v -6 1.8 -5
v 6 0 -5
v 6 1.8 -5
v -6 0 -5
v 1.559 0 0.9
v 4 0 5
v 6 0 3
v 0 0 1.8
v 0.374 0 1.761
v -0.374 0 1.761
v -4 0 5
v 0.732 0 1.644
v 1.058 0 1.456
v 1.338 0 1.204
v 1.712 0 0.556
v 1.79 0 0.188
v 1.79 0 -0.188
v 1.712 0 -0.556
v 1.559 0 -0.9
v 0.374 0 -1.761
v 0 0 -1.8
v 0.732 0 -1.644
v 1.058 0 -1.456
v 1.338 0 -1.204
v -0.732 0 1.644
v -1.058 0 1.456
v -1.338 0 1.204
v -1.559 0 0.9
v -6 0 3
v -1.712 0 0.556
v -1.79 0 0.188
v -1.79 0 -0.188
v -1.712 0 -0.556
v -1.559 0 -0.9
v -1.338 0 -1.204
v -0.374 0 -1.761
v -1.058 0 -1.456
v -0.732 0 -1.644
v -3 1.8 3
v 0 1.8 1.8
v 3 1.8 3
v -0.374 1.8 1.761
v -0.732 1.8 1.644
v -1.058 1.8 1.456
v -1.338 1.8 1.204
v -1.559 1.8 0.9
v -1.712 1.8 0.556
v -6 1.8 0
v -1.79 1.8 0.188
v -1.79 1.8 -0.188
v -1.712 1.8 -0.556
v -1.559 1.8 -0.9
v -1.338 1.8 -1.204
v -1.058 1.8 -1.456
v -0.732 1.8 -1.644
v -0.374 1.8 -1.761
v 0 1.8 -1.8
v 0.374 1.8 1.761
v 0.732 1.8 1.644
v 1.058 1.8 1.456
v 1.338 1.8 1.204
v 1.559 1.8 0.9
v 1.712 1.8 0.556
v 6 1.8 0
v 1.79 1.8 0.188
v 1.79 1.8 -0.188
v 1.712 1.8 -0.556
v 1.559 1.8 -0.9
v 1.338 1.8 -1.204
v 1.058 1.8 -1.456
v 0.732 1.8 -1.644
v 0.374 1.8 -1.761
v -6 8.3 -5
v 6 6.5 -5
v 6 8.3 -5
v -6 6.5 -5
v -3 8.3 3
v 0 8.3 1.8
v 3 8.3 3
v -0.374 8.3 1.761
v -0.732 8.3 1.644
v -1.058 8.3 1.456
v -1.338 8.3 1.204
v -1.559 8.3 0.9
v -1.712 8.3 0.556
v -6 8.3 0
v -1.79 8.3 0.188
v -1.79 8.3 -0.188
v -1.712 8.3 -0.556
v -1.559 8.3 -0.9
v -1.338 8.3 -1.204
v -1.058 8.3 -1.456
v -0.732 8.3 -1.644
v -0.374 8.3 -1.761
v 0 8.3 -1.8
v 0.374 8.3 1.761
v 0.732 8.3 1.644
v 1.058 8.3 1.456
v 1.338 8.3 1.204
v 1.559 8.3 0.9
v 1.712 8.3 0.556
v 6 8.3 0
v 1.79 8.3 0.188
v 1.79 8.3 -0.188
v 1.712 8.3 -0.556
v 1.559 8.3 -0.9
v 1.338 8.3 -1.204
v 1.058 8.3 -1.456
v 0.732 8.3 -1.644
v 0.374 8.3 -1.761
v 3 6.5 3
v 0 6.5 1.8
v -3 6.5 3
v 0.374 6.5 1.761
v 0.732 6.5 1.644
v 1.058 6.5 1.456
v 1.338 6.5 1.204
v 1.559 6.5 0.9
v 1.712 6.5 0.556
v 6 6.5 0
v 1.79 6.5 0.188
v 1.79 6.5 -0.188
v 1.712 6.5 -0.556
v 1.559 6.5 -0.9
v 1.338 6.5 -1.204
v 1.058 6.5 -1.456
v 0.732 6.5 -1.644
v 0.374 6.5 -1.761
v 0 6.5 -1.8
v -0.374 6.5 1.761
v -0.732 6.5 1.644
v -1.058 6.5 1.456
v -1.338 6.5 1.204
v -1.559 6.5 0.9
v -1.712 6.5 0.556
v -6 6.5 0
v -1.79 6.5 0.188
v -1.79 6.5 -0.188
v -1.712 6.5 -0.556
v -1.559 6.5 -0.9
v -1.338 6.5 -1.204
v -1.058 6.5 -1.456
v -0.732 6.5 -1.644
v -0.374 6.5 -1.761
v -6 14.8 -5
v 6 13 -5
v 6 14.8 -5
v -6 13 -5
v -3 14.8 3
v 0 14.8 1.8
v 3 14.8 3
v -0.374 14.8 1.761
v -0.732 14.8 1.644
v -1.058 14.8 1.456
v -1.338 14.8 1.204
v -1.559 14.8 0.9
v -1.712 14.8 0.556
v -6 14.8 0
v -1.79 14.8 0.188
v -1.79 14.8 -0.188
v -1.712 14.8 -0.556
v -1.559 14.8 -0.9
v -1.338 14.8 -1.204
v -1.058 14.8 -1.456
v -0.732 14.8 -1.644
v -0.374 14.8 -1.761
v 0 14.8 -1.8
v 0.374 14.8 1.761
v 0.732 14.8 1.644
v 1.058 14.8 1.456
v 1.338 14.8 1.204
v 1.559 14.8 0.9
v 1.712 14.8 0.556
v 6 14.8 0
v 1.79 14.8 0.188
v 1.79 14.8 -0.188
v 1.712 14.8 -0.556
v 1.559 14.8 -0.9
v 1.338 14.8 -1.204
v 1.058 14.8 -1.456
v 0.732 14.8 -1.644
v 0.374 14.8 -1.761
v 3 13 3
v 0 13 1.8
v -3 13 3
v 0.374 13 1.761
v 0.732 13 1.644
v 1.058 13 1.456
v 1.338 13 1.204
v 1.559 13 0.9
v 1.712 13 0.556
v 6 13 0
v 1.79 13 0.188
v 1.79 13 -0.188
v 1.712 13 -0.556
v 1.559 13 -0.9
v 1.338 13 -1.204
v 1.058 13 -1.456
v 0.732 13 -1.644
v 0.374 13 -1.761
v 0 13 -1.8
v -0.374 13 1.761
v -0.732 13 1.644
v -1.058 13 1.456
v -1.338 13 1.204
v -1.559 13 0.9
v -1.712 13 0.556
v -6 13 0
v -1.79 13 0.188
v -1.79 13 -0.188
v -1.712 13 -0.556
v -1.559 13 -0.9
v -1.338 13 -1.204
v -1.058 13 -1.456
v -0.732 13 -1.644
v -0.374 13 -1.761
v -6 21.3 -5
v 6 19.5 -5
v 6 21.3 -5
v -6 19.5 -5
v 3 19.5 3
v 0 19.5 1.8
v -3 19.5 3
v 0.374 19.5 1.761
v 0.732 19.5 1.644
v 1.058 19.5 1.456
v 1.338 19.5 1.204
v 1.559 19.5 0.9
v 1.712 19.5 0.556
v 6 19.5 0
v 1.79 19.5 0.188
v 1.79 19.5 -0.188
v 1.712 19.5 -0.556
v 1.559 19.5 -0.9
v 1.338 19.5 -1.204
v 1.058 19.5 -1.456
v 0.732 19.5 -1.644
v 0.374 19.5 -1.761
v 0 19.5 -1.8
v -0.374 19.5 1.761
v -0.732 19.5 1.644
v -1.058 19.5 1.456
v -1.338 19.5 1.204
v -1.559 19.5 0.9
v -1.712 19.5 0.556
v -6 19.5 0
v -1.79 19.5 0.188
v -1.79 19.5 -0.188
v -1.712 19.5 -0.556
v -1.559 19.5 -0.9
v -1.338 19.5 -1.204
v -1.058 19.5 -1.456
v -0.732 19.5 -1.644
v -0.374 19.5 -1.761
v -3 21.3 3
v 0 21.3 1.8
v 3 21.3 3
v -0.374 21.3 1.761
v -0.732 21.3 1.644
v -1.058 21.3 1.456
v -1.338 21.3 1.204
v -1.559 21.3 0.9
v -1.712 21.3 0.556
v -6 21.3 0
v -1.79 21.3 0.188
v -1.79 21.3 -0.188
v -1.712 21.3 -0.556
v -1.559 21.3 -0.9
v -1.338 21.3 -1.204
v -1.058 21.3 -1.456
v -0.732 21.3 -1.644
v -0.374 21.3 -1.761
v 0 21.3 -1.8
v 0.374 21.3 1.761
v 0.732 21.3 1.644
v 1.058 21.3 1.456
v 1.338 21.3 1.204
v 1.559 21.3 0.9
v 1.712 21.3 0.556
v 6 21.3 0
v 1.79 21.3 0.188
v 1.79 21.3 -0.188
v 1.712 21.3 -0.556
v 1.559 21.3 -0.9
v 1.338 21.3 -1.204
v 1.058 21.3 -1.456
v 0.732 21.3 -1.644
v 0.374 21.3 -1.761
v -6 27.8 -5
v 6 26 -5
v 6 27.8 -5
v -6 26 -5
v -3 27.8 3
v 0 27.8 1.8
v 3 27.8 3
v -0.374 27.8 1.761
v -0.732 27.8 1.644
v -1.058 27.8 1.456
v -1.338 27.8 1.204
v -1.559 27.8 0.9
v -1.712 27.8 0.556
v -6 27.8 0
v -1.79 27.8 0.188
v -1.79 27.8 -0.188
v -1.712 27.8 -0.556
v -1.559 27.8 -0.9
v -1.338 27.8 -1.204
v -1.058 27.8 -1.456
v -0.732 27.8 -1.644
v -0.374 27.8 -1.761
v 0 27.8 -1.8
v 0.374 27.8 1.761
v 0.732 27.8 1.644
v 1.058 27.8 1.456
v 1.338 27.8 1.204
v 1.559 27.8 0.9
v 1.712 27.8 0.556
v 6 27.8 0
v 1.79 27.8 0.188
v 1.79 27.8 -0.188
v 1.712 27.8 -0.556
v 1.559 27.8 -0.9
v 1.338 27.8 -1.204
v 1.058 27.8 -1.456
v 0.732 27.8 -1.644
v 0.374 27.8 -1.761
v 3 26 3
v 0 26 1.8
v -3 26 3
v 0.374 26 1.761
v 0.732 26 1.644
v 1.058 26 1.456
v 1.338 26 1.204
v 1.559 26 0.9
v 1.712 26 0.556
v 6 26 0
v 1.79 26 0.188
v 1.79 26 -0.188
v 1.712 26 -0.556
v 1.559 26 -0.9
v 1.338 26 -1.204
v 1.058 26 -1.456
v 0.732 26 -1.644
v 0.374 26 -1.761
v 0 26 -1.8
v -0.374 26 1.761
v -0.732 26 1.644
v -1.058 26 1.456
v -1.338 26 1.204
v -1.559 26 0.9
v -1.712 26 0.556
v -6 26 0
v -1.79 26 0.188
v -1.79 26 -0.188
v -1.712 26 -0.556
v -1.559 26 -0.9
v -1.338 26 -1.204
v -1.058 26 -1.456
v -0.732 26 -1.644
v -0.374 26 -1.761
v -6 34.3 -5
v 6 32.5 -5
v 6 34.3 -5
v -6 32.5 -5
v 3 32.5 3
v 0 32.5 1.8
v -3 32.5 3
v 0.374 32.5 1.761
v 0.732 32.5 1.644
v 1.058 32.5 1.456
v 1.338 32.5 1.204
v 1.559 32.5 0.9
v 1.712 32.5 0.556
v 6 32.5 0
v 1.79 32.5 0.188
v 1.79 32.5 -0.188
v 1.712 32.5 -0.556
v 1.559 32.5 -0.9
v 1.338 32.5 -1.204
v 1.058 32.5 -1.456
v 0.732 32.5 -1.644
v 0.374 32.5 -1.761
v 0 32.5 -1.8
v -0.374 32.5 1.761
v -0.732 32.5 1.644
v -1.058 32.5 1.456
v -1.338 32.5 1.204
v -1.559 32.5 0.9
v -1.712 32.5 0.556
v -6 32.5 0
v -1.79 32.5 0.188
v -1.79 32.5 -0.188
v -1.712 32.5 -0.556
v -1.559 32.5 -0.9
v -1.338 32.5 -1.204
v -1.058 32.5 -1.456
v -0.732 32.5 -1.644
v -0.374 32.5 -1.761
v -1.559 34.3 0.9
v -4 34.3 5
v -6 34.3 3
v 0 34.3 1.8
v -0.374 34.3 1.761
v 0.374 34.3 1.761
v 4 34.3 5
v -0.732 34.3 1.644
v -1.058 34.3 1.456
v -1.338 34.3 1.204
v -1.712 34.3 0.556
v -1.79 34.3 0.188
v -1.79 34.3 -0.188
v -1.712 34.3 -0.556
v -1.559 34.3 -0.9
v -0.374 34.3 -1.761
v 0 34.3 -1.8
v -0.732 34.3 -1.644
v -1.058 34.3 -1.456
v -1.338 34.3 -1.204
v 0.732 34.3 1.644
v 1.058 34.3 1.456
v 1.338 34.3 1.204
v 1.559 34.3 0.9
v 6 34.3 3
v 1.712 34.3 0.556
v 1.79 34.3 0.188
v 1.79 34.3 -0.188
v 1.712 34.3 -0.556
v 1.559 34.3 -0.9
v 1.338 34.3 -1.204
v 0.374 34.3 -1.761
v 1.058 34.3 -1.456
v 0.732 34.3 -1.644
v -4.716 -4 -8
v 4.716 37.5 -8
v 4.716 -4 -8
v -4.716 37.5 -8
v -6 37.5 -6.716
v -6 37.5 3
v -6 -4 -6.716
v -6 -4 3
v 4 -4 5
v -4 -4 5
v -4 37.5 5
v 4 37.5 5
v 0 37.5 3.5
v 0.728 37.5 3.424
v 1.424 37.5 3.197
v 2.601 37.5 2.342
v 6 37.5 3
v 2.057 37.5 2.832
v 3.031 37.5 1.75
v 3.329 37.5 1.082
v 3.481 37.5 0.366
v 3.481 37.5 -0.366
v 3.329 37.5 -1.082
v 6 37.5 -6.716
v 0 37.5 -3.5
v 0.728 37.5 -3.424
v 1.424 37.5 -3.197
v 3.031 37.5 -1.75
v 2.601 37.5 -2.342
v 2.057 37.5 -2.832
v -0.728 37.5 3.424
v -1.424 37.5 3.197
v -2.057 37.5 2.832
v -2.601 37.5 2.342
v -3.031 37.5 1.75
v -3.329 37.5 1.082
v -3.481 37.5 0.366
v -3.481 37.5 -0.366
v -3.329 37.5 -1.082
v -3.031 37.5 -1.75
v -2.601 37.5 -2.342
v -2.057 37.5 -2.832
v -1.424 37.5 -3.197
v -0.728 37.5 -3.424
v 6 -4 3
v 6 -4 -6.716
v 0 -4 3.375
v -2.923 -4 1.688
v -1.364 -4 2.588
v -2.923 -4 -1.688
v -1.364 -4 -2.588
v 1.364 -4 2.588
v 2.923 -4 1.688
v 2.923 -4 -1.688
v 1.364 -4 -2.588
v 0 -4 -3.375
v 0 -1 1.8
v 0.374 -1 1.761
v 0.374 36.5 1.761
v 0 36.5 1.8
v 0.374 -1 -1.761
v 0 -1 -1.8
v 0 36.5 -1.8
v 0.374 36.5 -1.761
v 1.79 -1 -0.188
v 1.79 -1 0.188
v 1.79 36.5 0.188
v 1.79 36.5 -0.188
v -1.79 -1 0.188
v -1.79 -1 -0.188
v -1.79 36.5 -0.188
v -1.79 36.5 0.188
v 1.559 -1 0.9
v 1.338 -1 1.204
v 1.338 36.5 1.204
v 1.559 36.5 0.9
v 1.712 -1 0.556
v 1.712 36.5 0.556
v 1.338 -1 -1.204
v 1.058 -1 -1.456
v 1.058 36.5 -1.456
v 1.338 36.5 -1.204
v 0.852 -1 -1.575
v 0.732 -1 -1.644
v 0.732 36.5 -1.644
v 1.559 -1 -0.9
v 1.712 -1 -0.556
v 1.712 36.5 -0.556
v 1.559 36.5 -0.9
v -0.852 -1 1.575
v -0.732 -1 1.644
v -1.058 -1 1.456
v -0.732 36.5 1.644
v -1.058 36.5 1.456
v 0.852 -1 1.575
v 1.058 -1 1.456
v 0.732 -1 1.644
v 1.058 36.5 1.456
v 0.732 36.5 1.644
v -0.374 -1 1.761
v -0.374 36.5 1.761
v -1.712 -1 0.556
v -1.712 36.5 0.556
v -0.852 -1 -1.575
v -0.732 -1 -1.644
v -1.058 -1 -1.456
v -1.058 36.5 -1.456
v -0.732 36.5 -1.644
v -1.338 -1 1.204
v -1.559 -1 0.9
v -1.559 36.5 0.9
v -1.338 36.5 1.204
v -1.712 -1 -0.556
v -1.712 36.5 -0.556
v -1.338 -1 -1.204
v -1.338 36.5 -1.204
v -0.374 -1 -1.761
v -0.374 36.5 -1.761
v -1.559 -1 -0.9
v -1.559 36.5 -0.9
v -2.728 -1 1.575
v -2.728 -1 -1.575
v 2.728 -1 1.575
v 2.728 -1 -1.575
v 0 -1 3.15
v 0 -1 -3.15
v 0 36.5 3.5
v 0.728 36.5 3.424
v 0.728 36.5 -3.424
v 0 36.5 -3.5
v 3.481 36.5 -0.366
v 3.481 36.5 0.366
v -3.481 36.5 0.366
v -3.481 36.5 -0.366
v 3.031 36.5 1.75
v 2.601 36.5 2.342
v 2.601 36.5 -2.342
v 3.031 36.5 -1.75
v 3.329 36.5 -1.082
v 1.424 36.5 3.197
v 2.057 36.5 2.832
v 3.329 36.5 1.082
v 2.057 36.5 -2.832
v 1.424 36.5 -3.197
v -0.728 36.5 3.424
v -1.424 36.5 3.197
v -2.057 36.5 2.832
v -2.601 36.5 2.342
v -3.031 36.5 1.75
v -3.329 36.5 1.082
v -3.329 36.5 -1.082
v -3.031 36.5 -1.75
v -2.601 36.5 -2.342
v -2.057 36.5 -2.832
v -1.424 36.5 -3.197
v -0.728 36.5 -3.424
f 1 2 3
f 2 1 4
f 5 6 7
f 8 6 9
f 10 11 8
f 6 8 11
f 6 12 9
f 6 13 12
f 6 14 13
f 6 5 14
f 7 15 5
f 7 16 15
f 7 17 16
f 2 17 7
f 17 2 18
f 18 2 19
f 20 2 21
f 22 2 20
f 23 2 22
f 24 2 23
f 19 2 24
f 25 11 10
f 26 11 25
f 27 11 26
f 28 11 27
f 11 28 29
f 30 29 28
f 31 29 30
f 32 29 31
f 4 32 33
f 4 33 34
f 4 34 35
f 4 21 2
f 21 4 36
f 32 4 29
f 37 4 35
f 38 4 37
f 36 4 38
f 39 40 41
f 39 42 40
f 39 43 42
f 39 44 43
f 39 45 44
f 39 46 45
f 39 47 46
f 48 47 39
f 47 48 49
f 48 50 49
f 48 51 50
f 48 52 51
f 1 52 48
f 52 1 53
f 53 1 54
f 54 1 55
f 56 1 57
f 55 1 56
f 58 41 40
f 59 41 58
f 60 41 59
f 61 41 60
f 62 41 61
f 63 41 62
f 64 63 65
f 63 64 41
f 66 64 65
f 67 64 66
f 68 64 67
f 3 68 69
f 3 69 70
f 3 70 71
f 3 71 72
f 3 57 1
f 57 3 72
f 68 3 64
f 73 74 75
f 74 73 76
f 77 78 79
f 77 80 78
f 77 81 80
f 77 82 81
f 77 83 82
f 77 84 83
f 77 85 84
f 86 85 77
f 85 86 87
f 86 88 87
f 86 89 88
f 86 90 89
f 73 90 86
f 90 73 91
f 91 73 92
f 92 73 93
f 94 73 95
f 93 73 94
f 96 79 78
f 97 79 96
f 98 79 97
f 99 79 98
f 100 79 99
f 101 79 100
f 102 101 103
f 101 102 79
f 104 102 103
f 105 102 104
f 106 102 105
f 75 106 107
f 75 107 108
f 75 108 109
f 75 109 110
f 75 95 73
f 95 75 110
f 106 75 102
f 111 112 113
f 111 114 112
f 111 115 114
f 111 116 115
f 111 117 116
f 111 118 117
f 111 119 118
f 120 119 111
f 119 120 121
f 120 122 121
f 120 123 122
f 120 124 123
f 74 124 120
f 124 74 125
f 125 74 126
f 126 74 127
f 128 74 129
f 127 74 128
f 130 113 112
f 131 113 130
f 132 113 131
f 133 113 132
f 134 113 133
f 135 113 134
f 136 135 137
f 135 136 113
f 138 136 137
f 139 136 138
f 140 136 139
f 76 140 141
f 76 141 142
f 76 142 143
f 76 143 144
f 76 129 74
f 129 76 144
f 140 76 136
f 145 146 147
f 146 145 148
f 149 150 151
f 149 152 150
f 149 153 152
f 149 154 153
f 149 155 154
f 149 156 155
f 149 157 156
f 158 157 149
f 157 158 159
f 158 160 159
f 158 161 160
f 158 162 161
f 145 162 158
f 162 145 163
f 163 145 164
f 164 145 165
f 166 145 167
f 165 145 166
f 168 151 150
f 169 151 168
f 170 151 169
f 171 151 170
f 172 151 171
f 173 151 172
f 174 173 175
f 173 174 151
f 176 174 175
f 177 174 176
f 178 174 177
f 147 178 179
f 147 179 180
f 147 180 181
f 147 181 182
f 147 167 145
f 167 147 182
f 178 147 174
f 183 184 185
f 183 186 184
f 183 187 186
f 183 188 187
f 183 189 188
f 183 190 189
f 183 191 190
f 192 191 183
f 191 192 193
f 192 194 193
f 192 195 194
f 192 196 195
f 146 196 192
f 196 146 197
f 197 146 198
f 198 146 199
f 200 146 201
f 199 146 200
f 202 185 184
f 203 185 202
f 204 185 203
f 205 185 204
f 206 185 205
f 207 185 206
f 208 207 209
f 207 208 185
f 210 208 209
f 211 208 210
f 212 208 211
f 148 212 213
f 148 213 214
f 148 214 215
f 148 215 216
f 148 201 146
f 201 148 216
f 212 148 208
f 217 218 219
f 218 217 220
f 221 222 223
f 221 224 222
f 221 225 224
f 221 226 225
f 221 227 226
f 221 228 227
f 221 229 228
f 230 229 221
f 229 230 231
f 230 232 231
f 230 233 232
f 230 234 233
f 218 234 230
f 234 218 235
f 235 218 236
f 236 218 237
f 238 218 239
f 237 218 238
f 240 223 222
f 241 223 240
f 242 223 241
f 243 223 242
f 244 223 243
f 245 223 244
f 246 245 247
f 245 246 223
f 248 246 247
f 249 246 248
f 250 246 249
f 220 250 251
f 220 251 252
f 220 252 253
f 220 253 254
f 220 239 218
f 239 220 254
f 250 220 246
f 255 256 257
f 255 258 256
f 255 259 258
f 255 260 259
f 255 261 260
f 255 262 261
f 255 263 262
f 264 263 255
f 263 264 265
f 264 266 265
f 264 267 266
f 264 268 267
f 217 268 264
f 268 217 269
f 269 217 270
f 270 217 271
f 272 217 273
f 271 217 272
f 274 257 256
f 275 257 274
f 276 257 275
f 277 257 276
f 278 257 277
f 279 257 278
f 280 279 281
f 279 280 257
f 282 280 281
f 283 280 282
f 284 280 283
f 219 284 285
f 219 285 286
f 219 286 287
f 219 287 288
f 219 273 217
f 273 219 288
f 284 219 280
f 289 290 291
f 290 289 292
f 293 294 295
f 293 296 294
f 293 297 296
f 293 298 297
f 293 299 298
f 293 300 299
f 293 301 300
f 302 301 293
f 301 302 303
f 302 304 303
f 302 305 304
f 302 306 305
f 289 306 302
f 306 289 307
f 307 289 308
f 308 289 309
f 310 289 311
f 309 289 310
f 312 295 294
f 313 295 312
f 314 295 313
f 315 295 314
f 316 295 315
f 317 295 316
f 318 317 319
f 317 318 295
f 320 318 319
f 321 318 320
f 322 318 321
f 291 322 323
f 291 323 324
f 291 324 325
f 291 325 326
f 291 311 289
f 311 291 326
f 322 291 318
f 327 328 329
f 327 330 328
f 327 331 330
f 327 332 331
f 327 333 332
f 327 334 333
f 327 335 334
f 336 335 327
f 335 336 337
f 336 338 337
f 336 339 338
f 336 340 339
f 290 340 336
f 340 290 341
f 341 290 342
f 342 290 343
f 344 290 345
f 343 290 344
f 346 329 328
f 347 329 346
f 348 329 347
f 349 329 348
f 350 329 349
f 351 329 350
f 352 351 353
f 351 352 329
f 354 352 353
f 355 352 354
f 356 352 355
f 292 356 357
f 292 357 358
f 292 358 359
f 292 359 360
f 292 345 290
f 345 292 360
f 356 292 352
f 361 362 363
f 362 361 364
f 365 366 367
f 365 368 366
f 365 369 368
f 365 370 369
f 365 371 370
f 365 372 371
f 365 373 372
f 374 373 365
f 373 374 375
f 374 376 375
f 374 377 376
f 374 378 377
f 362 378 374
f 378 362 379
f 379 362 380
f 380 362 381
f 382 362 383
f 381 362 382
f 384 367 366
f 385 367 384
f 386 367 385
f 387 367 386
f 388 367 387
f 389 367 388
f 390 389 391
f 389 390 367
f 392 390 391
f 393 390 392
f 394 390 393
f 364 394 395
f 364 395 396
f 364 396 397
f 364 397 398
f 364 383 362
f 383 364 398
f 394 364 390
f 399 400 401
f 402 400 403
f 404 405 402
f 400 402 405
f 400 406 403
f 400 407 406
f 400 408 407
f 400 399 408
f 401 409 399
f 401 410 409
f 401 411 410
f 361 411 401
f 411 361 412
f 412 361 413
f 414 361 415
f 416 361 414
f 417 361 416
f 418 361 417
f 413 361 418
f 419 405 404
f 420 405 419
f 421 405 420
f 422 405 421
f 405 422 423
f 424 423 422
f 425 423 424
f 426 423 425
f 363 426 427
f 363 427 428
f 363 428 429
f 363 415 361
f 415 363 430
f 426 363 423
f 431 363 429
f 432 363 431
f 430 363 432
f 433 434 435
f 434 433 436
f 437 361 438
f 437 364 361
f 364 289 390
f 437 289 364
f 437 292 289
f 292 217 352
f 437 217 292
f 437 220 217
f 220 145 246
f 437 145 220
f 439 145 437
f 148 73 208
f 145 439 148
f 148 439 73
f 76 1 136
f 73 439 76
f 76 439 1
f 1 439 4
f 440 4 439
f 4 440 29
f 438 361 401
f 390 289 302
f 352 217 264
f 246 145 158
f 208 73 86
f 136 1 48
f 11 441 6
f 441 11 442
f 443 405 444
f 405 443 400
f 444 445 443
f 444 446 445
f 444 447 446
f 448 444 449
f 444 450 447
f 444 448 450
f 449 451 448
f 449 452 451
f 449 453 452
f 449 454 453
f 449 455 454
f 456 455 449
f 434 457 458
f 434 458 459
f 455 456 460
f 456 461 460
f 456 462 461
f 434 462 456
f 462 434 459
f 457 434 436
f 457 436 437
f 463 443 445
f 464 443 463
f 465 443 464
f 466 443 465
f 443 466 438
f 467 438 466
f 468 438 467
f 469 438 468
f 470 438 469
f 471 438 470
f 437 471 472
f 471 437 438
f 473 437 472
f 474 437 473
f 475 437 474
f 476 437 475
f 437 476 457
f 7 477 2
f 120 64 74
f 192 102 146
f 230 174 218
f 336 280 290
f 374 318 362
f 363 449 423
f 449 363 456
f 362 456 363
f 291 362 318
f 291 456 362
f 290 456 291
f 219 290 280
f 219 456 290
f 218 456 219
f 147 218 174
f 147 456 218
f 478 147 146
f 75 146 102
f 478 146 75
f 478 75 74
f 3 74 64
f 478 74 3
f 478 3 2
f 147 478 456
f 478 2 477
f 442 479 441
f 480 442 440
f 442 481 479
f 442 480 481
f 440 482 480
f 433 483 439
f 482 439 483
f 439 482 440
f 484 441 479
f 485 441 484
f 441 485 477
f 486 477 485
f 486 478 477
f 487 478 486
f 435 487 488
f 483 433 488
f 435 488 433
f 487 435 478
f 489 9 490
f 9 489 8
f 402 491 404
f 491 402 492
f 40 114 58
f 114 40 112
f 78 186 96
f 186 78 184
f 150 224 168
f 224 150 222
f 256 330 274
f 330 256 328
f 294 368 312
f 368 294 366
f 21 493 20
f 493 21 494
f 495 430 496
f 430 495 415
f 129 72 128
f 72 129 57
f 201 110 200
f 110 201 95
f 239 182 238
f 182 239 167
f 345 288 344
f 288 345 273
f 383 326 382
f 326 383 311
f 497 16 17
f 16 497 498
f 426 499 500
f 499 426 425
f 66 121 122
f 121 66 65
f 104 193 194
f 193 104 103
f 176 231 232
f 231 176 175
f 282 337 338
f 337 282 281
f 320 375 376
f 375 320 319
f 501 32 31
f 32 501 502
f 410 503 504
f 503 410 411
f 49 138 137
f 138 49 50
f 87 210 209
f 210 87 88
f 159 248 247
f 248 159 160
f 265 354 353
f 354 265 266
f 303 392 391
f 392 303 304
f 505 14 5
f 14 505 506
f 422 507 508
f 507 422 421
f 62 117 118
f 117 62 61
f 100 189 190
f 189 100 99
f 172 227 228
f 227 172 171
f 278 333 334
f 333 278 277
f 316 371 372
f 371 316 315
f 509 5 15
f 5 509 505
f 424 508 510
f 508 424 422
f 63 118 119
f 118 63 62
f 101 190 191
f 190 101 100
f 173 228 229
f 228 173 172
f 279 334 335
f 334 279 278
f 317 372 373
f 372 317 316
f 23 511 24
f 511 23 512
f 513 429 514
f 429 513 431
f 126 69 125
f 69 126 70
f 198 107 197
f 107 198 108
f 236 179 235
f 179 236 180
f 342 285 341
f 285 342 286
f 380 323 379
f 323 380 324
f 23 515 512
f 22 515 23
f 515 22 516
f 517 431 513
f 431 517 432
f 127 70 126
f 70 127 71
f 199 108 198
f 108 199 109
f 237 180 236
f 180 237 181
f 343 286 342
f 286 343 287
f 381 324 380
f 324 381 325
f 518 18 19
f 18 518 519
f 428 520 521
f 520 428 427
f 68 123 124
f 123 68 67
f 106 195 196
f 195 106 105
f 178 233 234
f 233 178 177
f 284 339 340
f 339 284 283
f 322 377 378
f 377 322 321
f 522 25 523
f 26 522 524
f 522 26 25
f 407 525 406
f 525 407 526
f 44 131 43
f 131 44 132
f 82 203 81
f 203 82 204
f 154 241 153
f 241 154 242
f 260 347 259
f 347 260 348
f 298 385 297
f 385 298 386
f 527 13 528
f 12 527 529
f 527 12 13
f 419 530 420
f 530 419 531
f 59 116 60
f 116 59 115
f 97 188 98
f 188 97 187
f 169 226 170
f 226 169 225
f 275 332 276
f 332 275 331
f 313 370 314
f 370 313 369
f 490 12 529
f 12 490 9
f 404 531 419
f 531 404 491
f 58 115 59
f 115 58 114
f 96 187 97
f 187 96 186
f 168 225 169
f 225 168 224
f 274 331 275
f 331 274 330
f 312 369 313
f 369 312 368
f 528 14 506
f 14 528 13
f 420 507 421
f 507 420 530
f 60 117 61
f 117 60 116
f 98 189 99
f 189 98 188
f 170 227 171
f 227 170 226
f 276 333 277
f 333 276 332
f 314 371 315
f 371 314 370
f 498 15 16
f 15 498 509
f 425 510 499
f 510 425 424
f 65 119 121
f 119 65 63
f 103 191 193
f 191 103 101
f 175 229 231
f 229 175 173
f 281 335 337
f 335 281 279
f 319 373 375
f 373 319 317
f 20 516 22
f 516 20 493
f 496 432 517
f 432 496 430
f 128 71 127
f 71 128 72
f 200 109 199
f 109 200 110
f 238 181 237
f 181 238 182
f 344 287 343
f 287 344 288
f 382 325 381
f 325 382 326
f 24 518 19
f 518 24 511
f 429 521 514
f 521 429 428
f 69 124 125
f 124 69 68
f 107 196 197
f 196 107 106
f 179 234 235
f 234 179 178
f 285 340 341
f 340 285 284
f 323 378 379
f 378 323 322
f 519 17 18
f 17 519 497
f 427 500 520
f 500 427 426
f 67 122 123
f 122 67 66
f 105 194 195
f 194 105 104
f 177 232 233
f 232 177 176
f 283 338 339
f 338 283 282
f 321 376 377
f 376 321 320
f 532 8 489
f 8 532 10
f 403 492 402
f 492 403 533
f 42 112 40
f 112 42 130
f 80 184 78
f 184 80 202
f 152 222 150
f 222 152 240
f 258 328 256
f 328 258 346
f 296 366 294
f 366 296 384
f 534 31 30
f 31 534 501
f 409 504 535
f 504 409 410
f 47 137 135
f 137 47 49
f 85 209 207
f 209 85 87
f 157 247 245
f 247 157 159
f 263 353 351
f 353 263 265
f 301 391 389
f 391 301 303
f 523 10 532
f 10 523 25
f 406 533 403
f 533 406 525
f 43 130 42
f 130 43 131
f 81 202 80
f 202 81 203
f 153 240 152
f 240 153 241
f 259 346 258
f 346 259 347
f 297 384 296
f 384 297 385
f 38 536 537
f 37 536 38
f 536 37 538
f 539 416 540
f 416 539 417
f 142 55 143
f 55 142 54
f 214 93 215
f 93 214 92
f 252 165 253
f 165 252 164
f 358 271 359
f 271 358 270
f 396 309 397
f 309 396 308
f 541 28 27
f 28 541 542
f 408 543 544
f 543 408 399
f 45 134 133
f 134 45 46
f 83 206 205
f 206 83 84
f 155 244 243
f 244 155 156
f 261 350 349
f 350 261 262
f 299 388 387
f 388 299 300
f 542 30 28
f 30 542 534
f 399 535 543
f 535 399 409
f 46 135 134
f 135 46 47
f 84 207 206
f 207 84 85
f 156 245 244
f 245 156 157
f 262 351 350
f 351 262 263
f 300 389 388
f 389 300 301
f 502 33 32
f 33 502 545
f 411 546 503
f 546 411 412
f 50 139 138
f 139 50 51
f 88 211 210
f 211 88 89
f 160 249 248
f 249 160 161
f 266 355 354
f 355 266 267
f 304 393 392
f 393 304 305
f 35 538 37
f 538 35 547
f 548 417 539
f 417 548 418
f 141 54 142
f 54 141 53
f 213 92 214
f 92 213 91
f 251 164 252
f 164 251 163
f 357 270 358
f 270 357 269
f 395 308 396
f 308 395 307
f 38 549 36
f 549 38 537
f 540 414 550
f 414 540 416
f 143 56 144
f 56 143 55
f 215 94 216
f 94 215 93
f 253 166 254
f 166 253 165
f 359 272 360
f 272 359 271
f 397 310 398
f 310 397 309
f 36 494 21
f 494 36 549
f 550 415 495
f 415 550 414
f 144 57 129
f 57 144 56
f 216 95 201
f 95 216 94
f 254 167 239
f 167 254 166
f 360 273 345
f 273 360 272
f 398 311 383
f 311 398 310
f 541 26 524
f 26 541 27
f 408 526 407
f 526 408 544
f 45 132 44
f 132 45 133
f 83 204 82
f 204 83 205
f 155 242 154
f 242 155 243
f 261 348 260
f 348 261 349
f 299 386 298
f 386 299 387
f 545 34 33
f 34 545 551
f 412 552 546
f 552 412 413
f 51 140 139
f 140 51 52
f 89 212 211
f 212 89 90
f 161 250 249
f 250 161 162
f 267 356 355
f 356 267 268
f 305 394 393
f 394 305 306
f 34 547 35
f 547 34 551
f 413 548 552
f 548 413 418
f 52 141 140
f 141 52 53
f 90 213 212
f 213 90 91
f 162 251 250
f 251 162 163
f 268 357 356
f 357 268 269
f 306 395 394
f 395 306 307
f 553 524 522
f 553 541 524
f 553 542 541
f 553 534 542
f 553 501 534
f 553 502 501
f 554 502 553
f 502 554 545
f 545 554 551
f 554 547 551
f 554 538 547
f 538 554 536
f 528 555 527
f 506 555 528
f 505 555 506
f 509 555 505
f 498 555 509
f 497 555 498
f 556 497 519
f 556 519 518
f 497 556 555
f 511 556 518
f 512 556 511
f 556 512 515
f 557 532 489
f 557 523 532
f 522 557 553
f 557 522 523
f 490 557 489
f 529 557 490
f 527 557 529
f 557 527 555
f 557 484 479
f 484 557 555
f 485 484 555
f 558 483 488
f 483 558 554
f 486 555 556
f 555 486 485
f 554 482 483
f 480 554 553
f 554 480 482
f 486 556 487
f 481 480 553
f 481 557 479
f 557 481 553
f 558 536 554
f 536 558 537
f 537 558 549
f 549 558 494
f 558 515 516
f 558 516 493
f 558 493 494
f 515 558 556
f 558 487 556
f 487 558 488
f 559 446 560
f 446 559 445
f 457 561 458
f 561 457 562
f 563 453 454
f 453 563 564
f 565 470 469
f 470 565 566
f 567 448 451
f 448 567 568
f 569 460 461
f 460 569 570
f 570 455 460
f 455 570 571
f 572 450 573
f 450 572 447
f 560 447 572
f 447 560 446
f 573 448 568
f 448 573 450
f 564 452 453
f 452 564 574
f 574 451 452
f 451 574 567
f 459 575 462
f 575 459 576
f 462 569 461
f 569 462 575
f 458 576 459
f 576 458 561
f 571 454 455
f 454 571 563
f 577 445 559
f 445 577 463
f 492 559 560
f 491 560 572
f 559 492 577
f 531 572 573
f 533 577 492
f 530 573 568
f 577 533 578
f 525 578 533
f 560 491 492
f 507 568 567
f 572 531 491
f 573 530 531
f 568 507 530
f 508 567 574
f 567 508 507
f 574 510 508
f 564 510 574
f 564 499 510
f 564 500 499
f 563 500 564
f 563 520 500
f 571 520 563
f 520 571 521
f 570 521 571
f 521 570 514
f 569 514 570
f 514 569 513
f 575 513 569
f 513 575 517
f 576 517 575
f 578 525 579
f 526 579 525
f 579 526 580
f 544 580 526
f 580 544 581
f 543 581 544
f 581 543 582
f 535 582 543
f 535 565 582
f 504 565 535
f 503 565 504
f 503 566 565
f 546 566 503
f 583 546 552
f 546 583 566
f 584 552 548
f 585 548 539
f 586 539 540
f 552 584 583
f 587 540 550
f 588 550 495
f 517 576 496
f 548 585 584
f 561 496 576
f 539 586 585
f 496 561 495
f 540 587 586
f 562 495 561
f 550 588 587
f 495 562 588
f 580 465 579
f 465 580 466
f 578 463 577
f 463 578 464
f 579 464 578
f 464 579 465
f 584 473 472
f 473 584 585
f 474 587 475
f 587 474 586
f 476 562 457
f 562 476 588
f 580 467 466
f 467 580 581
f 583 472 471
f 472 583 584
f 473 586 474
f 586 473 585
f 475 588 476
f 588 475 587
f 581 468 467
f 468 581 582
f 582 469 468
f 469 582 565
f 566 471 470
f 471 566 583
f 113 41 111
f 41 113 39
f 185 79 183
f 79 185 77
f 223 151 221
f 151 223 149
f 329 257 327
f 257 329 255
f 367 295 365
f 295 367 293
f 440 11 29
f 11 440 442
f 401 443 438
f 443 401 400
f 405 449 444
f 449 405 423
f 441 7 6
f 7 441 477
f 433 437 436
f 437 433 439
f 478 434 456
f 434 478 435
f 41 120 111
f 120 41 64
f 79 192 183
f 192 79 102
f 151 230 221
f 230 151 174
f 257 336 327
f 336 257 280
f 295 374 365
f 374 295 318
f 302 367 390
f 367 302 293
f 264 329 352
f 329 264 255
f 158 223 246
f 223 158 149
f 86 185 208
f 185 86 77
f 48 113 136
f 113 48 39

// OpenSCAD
// PRUSA iteration4
// spool-buffer-spacer
// GNU GPL v3
// Josef Průša <iam@josefprusa.cz> and contributors
// http://www.reprap.org/wiki/Prusa_Mendel
// http://prusamendel.org


module buffer_spacer()
{
    difference()
    {
        // base block
        translate([-8,-4,-6]) cube([13,41.5,12]);
        
        // hold together screw
        translate([0,-3.4,0]) rotate([-90,0,0]) cylinder(r=1.8, h=40, $fn=30);
        translate([0,-7,0]) rotate([-90,0,0]) cylinder(r1=3.6, r2=3.15, h=6, $fn=6);
        translate([0,36.5,0]) rotate([-90,0,0]) cylinder(r=3.5, h=6, $fn=30);
        
        // plates
        for(i = [0 : 5])
        {
            translate([-5,6.5*i,-10]) cube([50,1.8,20]); 
        }
        
        // cut
        translate([3,1,-10]) cube([20,33,20]); 
        
        // edges
        translate([2,-5,7]) rotate([0,45,0]) cube([20,70,20]); 
        translate([2,-5,-7]) rotate([0,45,0]) cube([20,70,20]); 
        translate([-34,-5,7]) rotate([0,45,0]) cube([20,70,20]); 
        translate([-34,-5,-7]) rotate([0,45,0]) cube([20,70,20]); 
       
        translate([-2,1,-8]) rotate([0,45,0]) cube([20,32,20]); 
        translate([-2,1,8]) rotate([0,45,0]) cube([20,32,20]); 
        
    }
}


rotate([0,-90,0]) buffer_spacer();
